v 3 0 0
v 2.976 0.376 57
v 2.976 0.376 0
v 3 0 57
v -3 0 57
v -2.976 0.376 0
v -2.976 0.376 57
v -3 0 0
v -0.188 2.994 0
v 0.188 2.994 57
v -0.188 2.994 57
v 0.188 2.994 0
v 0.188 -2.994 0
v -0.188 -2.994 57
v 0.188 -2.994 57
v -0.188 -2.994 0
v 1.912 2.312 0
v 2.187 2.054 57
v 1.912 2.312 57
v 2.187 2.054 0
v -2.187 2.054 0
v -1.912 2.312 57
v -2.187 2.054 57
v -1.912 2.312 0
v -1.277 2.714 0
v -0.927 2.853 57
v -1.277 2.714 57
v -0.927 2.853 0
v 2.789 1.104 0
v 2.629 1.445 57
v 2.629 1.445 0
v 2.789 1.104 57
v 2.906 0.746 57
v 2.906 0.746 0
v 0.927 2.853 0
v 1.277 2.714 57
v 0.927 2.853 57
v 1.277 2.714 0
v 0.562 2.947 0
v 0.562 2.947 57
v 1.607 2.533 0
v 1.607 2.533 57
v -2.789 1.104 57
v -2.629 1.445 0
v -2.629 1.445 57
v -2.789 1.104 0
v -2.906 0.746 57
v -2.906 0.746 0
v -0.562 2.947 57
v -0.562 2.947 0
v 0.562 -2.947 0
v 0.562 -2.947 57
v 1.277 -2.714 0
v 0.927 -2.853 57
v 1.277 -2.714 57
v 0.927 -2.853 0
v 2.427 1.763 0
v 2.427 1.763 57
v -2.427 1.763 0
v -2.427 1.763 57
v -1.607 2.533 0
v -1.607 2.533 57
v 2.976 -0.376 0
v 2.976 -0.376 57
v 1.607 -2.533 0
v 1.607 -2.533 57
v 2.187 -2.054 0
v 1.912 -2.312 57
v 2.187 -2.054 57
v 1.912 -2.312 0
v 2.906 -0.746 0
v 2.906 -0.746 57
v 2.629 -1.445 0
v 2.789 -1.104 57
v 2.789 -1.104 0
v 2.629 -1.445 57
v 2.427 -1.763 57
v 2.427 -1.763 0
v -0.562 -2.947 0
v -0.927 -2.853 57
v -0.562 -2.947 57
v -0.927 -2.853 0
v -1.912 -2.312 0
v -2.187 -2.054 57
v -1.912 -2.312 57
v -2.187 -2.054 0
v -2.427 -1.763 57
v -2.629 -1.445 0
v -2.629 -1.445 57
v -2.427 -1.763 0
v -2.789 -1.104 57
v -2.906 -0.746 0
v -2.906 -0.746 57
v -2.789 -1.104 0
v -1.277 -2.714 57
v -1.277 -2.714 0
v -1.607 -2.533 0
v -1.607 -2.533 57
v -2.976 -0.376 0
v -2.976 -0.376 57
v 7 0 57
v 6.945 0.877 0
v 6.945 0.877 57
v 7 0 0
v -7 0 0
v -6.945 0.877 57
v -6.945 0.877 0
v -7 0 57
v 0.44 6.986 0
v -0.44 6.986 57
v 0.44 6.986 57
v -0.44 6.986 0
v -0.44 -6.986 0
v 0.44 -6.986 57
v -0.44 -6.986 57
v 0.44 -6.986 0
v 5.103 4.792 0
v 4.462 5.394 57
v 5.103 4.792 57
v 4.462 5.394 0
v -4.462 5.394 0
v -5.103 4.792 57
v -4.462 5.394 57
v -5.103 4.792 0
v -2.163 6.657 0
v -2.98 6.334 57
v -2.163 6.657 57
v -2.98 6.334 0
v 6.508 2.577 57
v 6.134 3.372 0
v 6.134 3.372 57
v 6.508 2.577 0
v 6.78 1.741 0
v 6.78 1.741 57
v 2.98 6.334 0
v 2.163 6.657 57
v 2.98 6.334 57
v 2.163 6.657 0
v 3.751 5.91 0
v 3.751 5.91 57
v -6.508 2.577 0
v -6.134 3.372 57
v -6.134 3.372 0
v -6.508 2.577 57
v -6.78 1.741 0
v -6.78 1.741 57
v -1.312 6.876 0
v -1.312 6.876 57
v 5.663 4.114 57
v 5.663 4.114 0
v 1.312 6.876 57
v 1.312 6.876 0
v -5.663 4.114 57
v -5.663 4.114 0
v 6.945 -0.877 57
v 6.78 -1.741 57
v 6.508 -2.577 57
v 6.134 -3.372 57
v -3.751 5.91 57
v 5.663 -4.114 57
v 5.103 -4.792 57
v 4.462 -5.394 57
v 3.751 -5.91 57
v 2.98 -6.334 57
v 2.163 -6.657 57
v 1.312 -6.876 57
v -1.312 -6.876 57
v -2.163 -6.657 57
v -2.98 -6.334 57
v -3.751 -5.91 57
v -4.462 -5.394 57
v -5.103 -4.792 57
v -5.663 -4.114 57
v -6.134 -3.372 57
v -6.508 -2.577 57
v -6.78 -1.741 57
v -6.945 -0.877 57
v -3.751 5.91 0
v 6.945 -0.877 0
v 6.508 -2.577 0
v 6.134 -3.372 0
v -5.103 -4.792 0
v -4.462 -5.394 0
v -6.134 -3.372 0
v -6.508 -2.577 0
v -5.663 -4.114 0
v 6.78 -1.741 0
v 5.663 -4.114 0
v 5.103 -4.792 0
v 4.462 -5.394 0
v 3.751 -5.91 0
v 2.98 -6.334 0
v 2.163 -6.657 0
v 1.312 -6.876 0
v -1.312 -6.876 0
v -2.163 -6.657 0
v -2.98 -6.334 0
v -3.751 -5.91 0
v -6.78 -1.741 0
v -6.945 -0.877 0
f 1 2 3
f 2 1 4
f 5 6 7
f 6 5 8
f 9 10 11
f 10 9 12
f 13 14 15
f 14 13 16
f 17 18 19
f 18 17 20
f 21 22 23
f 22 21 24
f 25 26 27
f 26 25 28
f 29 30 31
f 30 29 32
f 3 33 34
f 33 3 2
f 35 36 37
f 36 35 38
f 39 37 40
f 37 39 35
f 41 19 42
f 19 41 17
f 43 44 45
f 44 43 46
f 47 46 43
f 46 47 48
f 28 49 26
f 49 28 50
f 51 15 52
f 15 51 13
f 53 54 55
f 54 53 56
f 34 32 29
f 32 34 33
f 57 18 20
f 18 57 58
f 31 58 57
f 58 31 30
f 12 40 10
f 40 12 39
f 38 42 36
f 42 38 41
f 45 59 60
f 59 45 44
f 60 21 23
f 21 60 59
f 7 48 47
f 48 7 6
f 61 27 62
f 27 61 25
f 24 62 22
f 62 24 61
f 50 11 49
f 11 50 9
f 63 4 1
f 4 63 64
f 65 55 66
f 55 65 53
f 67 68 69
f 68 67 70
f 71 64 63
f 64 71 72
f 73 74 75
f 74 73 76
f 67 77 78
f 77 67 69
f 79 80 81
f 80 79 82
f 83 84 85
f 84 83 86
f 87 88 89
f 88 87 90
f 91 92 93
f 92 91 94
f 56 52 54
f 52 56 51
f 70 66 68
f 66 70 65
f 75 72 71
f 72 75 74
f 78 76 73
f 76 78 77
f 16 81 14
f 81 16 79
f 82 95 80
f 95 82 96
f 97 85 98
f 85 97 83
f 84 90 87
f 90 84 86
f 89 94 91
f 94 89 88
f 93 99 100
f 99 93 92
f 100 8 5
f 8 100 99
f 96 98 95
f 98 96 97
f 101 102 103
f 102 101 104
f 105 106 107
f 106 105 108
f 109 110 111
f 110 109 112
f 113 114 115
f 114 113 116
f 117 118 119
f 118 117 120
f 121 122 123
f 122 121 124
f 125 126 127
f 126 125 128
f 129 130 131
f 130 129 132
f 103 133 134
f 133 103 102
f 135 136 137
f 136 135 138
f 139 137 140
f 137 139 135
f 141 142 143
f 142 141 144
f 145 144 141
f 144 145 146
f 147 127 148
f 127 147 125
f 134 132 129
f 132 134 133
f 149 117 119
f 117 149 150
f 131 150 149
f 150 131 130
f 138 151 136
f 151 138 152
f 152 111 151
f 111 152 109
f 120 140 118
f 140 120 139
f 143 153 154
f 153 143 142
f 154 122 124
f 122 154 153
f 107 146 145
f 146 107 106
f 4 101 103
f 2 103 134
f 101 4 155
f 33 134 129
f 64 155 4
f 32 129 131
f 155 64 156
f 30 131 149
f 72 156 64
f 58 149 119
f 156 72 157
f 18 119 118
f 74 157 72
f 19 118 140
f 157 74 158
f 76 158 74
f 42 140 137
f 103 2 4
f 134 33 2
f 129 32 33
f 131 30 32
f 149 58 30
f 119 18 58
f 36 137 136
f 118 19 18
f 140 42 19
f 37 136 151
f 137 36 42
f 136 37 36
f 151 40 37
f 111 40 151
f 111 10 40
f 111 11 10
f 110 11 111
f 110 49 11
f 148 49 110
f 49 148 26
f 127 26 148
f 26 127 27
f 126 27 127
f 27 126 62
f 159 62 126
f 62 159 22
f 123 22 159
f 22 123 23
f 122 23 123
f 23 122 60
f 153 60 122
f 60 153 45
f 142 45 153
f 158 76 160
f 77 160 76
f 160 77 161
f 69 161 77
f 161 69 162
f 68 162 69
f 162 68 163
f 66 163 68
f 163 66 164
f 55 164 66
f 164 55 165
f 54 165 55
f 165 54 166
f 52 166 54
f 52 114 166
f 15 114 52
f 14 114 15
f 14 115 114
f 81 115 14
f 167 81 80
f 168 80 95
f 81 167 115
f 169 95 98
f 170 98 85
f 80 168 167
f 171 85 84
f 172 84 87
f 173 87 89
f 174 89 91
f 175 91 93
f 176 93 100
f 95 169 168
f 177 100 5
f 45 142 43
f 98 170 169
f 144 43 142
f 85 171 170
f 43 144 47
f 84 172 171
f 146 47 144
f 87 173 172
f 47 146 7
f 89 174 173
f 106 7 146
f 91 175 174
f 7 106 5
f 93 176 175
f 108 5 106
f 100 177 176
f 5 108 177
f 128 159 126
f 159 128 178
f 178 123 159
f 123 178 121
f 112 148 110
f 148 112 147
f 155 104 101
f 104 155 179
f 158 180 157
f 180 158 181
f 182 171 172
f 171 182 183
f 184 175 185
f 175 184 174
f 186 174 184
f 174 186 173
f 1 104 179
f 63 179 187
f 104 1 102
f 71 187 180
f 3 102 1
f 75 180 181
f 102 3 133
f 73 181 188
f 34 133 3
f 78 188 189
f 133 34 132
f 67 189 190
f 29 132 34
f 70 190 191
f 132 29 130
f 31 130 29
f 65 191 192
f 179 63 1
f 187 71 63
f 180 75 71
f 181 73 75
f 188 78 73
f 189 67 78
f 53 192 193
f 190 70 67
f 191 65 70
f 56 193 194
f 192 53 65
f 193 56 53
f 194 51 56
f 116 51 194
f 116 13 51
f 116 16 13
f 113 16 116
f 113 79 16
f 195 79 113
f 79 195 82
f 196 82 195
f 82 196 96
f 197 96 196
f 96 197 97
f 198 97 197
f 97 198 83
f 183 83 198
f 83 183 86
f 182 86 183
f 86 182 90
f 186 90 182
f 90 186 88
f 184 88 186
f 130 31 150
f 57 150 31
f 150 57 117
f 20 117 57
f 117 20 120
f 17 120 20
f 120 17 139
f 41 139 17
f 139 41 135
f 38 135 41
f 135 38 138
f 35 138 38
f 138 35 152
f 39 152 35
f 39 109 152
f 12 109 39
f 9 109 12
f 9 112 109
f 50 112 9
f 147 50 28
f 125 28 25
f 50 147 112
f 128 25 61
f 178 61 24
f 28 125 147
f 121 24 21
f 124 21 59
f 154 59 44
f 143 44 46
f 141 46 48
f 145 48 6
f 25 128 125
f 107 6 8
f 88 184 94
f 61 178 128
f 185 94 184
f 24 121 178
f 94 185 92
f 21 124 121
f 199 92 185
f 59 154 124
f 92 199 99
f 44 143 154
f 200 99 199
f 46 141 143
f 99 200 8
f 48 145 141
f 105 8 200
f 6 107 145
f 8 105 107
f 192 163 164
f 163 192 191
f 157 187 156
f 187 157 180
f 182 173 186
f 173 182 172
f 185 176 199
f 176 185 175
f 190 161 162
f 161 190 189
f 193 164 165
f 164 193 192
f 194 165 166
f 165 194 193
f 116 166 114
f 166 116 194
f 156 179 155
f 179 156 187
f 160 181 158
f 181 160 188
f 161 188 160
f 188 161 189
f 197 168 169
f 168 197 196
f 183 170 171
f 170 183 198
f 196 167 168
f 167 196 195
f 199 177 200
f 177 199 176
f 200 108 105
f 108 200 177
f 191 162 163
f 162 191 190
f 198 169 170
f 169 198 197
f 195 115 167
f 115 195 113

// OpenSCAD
$fn = 50;


difference() {
	union() {
		cylinder(h = 57, r = 7.0000000000);
	}
	union() {
		translate(v = [0, 0, -100]) {
			cylinder(h = 200, r = 3.0000000000);
		}
		translate(v = [0, 0, -100]) {
			cylinder(h = 200, r = 1.5000000000);
		}
	}
}
